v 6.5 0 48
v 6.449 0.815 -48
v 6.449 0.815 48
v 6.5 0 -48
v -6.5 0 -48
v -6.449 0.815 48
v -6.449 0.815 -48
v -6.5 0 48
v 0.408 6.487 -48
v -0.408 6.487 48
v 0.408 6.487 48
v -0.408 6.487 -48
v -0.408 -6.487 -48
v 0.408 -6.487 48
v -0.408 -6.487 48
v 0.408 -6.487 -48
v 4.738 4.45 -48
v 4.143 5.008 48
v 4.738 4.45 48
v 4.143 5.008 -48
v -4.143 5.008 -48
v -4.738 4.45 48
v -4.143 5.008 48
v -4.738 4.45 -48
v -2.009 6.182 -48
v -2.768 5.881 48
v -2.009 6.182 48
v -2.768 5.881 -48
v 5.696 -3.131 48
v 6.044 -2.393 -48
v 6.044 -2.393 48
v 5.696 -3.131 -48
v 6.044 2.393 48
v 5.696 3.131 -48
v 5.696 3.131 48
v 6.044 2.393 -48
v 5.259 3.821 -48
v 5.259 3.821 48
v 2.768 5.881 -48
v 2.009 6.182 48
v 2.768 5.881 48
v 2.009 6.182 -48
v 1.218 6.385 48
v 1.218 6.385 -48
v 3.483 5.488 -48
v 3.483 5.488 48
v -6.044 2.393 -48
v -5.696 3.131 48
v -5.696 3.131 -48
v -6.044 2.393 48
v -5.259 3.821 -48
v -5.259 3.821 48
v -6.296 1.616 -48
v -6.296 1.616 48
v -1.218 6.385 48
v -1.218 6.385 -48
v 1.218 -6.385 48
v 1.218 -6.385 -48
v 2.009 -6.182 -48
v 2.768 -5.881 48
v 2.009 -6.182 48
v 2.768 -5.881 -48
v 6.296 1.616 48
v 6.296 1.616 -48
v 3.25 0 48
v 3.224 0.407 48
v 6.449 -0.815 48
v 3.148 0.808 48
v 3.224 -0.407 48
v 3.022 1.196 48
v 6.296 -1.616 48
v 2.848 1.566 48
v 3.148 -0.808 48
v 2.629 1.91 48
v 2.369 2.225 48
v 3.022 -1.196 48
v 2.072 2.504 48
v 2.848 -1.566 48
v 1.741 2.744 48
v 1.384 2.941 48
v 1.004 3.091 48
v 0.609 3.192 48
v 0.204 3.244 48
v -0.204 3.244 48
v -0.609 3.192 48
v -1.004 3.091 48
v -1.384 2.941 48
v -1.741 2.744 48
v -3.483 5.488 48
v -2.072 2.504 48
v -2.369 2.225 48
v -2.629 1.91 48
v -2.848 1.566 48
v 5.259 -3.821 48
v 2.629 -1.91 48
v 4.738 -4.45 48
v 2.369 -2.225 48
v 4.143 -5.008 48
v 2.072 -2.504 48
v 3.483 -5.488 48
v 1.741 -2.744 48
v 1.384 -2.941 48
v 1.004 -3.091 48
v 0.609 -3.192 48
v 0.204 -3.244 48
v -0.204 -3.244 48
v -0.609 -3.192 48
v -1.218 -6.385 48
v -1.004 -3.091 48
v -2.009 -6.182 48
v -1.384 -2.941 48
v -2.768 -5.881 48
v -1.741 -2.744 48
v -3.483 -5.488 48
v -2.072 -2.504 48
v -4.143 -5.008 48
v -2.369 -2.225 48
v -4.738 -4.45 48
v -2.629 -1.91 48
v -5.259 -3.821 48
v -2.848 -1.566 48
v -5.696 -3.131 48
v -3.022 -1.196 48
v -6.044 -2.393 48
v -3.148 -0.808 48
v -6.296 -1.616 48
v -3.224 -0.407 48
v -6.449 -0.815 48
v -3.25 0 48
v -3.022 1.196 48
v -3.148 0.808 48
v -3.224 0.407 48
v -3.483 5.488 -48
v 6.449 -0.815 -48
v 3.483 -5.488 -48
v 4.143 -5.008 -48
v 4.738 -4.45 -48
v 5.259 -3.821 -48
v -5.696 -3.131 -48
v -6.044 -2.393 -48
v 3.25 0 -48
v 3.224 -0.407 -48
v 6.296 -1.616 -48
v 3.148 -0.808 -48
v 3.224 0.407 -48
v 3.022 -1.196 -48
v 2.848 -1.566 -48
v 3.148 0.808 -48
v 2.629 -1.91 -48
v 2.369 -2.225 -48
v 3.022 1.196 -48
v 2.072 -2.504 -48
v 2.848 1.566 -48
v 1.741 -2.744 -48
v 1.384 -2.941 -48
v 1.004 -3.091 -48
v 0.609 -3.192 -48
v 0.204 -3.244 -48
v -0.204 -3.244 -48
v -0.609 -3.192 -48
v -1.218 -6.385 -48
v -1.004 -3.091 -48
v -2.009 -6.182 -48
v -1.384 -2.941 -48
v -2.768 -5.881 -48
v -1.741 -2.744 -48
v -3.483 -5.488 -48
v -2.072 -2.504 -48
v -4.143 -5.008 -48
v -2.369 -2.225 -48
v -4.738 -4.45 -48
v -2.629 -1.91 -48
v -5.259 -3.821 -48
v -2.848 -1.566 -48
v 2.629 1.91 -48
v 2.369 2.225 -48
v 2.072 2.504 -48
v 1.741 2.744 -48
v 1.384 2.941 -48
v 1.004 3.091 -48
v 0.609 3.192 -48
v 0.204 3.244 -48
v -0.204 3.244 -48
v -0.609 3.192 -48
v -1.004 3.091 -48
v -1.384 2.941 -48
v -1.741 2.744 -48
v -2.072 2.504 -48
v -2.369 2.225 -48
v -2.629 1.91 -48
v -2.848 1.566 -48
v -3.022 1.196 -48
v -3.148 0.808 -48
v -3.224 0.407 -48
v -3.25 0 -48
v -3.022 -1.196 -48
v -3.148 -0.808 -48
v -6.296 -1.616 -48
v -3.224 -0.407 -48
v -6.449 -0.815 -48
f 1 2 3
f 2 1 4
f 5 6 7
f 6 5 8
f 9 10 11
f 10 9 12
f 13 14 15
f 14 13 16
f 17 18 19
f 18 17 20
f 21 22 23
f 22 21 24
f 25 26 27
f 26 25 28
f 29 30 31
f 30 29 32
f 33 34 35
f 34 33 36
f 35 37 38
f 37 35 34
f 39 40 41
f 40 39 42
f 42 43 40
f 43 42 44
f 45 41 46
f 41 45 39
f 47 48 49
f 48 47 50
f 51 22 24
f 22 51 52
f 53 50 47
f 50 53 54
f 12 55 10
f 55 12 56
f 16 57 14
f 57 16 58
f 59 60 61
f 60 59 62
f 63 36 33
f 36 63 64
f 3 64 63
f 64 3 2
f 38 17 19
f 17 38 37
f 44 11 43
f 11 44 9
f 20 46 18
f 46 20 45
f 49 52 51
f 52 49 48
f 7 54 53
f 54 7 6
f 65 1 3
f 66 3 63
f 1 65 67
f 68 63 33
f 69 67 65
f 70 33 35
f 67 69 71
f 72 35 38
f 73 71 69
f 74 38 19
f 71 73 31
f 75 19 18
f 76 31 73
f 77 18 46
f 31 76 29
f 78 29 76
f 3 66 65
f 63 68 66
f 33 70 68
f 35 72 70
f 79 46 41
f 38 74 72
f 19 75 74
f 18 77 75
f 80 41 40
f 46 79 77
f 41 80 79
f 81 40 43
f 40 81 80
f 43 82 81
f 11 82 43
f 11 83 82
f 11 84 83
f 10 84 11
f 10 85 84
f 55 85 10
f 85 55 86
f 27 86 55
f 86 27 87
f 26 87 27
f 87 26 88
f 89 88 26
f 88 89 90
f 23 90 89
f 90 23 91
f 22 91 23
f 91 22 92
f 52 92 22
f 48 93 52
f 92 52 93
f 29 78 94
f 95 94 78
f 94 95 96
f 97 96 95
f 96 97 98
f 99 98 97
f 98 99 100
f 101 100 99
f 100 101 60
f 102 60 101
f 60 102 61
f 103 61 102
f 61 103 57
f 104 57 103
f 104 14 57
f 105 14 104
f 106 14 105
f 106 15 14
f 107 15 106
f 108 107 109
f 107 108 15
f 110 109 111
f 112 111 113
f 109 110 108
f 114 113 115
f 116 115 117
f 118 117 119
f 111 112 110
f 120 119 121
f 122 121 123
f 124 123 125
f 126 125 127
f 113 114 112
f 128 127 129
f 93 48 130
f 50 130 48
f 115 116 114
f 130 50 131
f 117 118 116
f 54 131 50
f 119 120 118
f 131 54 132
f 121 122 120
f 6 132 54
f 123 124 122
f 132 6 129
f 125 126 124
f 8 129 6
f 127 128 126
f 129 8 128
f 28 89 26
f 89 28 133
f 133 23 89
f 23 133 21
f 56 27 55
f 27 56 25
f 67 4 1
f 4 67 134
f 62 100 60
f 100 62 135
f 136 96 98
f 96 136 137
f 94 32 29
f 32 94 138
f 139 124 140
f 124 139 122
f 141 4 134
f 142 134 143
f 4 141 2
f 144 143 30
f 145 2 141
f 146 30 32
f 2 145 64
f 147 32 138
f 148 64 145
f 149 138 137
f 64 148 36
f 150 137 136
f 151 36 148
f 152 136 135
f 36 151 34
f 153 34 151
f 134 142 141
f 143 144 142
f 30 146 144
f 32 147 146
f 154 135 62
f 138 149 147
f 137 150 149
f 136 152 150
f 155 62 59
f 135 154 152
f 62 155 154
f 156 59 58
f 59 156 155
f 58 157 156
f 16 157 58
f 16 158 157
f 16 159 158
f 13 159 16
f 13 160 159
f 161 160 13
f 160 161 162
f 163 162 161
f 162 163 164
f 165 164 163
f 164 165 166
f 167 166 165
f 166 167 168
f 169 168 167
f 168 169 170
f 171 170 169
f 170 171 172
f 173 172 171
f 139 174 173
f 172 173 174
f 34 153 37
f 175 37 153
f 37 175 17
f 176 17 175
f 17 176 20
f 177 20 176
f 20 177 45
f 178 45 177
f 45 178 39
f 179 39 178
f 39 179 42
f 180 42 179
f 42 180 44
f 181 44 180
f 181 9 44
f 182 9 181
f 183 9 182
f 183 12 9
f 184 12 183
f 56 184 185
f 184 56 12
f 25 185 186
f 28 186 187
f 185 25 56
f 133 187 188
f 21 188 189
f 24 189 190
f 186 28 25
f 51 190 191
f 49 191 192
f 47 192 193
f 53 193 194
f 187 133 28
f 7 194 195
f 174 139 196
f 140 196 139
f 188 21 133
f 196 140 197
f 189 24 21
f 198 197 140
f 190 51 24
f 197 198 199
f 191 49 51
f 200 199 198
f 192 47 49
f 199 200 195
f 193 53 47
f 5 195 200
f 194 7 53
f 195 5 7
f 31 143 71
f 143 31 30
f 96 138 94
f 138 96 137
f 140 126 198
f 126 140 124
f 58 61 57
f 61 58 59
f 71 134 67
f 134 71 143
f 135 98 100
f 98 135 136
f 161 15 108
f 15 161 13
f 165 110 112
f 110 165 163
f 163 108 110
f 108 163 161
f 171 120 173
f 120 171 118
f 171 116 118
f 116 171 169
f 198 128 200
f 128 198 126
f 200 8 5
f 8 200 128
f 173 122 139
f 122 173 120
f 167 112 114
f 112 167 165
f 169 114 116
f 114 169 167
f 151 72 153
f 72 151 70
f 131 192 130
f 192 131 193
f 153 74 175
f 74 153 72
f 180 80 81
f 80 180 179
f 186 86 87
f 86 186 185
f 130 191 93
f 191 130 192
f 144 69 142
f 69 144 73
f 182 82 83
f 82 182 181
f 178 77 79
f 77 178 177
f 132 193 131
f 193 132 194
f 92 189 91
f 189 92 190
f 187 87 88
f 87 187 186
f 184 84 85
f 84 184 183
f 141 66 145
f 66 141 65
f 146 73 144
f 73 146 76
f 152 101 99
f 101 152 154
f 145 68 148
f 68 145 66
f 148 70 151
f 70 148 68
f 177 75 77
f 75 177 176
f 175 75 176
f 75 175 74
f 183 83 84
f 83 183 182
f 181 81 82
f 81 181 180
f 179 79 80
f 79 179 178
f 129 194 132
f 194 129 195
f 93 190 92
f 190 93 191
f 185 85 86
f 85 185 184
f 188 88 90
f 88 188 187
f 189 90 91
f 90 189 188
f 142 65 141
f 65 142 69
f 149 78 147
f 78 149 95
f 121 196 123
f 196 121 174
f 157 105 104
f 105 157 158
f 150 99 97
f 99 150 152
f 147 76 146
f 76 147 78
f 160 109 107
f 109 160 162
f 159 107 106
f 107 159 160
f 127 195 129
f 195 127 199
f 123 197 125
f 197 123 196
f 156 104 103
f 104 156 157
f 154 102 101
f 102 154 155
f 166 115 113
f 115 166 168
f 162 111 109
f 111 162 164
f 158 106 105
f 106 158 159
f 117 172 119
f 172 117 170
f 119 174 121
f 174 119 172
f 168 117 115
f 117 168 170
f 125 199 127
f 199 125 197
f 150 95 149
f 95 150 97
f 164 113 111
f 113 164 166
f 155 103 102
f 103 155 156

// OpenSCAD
$fn = 50;


difference() {
	union() {
		translate(v = [0, 0, -48.0000000000]) {
			cylinder(h = 96, r = 6.5000000000);
		}
	}
	union() {
		translate(v = [0, 0, -100.0000000000]) {
			cylinder(h = 200, r = 3.2500000000);
		}
	}
}
